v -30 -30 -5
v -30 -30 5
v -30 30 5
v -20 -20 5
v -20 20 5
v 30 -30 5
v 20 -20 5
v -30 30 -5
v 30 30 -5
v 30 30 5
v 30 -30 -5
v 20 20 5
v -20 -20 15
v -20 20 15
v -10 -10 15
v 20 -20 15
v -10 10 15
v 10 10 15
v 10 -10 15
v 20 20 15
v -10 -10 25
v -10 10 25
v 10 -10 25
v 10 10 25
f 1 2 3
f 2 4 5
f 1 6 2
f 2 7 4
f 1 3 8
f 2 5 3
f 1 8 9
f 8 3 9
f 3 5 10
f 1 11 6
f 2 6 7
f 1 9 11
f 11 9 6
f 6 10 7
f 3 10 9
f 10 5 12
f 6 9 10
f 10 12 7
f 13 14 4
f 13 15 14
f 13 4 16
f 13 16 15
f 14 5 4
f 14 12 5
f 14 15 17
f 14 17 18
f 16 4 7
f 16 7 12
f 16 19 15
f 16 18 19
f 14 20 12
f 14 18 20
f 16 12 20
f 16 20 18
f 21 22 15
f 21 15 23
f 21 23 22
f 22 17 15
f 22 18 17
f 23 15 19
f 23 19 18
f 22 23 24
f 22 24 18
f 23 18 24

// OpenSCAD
// 3段の階段状ピラミッド

// 1段目: 60mm × 60mm × 高さ 10mm
translate([0, 0, 0])
    cube([60, 60, 10], center = true);

// 2段目: 40mm × 40mm × 高さ 10mm
translate([0, 0, 10])
    cube([40, 40, 10], center = true);

// 3段目: 20mm × 20mm × 高さ 10mm
translate([0, 0, 20])
    cube([20, 20, 10], center = true);
